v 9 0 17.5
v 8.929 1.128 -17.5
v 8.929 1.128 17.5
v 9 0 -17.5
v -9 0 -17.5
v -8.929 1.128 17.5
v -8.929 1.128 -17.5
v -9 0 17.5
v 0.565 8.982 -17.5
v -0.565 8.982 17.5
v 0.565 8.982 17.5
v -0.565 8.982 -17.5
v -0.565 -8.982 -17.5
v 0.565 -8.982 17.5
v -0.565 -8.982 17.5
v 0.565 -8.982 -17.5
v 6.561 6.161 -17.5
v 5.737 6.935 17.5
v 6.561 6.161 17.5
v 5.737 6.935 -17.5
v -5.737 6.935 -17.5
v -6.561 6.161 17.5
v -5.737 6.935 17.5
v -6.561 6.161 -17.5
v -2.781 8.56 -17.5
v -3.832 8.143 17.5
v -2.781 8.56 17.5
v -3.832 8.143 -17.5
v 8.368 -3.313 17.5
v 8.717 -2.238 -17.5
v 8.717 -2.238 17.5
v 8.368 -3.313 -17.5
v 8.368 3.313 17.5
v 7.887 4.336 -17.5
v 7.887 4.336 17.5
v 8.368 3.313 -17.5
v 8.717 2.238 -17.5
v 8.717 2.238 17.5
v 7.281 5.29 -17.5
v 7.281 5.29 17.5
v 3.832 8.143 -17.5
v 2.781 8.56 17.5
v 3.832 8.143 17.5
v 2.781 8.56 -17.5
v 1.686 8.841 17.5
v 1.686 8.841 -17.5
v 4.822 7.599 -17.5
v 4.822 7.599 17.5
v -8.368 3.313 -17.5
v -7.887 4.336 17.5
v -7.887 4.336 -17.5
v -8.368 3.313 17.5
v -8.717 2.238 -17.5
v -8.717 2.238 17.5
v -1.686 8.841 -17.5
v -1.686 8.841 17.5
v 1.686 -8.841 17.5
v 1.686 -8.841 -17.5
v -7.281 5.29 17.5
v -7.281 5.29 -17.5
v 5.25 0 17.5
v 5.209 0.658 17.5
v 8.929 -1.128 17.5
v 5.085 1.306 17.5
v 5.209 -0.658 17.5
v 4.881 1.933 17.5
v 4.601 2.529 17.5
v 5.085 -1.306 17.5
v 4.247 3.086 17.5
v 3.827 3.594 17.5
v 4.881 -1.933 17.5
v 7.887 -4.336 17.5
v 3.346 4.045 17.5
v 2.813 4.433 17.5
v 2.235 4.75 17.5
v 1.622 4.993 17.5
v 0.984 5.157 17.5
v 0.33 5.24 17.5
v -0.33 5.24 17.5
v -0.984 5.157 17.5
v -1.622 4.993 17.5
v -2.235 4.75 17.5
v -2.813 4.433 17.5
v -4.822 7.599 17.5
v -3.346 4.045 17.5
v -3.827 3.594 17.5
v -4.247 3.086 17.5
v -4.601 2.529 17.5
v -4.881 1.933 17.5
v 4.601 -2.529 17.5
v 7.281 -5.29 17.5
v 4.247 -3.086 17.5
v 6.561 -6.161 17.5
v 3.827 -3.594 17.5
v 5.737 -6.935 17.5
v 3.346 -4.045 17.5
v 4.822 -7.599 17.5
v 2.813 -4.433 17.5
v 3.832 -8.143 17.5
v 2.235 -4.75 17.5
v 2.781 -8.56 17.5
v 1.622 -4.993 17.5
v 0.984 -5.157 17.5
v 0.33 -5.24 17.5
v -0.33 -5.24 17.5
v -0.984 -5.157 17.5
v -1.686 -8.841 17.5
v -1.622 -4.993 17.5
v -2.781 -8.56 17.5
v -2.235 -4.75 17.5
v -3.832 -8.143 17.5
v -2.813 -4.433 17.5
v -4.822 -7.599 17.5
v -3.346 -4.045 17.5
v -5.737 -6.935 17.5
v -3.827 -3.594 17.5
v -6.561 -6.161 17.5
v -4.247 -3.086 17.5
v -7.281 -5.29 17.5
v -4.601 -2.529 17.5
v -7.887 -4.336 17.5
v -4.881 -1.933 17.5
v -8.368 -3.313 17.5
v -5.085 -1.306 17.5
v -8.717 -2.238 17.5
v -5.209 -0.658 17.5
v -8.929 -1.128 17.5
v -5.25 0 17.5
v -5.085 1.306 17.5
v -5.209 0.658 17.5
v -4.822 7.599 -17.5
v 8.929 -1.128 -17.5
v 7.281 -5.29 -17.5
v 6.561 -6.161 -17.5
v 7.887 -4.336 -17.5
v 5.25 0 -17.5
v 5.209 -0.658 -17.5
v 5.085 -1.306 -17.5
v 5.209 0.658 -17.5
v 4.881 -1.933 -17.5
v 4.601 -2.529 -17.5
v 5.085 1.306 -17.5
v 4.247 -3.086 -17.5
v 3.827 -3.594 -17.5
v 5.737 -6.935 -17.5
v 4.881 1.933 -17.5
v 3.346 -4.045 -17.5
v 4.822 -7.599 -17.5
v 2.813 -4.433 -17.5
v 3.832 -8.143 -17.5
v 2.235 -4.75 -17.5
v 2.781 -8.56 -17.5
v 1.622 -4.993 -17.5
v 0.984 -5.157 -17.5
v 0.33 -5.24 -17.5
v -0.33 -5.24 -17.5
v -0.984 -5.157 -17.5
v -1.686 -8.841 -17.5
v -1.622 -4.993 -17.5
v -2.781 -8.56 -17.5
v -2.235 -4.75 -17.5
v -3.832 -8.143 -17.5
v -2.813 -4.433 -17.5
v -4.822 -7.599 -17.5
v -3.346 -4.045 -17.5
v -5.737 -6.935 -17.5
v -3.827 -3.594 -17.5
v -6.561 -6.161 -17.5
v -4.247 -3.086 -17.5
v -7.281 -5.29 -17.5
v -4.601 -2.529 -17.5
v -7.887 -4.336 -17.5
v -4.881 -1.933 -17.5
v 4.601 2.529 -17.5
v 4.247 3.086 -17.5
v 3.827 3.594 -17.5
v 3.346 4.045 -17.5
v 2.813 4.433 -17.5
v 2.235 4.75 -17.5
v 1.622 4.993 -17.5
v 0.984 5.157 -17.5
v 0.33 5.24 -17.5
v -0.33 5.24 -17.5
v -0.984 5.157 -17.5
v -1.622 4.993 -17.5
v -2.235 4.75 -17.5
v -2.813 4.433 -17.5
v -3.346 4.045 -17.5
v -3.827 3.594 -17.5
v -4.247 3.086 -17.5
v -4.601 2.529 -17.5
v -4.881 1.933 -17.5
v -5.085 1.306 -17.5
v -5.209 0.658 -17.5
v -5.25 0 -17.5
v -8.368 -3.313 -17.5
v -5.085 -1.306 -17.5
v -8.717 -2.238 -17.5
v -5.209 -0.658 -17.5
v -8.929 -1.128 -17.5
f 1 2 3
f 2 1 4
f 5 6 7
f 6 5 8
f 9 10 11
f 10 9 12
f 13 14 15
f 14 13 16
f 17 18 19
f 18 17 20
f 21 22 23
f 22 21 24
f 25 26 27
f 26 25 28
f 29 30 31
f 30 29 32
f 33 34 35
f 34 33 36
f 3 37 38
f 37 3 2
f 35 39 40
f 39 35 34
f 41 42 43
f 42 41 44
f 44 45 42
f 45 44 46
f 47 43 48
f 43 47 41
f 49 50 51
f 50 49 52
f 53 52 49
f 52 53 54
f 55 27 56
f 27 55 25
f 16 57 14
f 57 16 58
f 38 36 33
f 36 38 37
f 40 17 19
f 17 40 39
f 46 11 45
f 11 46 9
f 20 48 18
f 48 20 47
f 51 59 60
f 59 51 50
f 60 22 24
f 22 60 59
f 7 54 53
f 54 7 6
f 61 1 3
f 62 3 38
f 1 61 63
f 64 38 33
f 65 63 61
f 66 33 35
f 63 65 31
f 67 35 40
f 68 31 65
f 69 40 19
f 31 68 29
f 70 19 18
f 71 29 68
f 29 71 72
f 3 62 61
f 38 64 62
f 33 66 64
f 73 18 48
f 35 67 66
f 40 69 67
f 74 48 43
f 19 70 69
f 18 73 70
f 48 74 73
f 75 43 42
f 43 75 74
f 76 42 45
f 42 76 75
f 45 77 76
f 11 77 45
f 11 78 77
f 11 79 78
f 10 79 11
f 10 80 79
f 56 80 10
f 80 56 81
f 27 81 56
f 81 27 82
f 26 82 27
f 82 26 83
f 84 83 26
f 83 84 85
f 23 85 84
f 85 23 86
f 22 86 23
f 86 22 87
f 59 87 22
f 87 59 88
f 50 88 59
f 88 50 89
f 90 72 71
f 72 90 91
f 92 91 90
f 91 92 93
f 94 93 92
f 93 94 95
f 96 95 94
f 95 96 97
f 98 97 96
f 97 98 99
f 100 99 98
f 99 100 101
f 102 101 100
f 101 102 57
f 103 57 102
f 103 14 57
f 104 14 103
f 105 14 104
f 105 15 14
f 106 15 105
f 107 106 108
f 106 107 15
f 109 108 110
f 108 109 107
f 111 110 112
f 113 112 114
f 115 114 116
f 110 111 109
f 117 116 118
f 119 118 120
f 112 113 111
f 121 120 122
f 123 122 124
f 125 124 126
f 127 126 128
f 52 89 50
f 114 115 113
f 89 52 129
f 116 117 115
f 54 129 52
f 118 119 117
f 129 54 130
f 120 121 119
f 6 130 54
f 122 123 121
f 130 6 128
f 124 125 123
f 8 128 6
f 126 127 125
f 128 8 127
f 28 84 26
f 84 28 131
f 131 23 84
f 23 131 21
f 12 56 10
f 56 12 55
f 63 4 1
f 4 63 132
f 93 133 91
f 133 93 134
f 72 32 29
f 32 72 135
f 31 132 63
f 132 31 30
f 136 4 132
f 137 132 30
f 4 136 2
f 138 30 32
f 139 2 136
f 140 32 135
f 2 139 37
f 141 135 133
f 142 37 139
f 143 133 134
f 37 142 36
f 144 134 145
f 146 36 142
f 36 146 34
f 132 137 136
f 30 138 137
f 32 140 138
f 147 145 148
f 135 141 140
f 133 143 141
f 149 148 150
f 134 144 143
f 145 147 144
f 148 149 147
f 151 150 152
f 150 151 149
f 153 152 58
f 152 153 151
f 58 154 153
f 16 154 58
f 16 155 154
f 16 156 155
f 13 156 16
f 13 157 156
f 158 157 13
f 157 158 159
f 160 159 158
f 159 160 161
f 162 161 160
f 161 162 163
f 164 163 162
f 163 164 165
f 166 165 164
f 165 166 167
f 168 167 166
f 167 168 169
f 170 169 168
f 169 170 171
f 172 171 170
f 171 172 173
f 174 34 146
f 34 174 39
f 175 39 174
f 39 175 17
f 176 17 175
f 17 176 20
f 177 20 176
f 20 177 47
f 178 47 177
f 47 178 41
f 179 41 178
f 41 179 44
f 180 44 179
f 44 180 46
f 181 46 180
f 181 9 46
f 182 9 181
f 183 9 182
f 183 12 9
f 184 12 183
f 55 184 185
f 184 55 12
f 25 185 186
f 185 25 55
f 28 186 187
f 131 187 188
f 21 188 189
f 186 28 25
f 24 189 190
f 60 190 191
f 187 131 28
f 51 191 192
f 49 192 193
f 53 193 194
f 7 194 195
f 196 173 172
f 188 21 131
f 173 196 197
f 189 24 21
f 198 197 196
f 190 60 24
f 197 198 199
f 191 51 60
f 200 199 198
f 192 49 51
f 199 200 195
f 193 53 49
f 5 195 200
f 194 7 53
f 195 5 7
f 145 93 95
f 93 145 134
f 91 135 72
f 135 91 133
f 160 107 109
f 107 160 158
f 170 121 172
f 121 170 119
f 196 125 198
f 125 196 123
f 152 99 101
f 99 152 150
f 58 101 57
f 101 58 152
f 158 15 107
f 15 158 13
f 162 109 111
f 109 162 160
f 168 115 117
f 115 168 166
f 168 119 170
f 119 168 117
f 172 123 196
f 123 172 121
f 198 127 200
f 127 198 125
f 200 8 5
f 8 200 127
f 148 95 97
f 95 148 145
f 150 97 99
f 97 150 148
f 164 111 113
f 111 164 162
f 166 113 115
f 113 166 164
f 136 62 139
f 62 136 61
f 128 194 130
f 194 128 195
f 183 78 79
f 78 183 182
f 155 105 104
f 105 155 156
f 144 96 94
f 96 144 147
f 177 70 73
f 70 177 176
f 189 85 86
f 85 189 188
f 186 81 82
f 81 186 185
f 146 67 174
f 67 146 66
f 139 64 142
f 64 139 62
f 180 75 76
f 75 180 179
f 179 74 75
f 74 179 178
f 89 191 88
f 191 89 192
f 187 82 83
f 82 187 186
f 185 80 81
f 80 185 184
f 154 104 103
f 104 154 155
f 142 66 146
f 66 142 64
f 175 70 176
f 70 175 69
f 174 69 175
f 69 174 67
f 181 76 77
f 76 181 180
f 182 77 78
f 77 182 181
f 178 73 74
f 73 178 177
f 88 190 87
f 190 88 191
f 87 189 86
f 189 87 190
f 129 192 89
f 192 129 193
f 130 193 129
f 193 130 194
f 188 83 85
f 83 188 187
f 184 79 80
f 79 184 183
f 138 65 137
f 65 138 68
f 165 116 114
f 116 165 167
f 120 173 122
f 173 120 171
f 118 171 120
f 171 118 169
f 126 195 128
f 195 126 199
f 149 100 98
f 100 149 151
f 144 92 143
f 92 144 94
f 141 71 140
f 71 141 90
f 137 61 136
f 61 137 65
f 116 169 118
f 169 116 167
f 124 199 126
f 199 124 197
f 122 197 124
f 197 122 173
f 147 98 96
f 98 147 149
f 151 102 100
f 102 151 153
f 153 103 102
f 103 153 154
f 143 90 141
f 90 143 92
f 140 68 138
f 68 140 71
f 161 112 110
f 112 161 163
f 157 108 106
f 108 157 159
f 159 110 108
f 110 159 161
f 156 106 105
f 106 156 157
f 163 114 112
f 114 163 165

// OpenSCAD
$fn = 50;


difference() {
	union() {
		translate(v = [0, 0, -17.5000000000]) {
			cylinder(h = 35, r = 9.0000000000);
		}
	}
	union() {
		translate(v = [0, 0, -100.0000000000]) {
			cylinder(h = 200, r = 5.2500000000);
		}
	}
}
